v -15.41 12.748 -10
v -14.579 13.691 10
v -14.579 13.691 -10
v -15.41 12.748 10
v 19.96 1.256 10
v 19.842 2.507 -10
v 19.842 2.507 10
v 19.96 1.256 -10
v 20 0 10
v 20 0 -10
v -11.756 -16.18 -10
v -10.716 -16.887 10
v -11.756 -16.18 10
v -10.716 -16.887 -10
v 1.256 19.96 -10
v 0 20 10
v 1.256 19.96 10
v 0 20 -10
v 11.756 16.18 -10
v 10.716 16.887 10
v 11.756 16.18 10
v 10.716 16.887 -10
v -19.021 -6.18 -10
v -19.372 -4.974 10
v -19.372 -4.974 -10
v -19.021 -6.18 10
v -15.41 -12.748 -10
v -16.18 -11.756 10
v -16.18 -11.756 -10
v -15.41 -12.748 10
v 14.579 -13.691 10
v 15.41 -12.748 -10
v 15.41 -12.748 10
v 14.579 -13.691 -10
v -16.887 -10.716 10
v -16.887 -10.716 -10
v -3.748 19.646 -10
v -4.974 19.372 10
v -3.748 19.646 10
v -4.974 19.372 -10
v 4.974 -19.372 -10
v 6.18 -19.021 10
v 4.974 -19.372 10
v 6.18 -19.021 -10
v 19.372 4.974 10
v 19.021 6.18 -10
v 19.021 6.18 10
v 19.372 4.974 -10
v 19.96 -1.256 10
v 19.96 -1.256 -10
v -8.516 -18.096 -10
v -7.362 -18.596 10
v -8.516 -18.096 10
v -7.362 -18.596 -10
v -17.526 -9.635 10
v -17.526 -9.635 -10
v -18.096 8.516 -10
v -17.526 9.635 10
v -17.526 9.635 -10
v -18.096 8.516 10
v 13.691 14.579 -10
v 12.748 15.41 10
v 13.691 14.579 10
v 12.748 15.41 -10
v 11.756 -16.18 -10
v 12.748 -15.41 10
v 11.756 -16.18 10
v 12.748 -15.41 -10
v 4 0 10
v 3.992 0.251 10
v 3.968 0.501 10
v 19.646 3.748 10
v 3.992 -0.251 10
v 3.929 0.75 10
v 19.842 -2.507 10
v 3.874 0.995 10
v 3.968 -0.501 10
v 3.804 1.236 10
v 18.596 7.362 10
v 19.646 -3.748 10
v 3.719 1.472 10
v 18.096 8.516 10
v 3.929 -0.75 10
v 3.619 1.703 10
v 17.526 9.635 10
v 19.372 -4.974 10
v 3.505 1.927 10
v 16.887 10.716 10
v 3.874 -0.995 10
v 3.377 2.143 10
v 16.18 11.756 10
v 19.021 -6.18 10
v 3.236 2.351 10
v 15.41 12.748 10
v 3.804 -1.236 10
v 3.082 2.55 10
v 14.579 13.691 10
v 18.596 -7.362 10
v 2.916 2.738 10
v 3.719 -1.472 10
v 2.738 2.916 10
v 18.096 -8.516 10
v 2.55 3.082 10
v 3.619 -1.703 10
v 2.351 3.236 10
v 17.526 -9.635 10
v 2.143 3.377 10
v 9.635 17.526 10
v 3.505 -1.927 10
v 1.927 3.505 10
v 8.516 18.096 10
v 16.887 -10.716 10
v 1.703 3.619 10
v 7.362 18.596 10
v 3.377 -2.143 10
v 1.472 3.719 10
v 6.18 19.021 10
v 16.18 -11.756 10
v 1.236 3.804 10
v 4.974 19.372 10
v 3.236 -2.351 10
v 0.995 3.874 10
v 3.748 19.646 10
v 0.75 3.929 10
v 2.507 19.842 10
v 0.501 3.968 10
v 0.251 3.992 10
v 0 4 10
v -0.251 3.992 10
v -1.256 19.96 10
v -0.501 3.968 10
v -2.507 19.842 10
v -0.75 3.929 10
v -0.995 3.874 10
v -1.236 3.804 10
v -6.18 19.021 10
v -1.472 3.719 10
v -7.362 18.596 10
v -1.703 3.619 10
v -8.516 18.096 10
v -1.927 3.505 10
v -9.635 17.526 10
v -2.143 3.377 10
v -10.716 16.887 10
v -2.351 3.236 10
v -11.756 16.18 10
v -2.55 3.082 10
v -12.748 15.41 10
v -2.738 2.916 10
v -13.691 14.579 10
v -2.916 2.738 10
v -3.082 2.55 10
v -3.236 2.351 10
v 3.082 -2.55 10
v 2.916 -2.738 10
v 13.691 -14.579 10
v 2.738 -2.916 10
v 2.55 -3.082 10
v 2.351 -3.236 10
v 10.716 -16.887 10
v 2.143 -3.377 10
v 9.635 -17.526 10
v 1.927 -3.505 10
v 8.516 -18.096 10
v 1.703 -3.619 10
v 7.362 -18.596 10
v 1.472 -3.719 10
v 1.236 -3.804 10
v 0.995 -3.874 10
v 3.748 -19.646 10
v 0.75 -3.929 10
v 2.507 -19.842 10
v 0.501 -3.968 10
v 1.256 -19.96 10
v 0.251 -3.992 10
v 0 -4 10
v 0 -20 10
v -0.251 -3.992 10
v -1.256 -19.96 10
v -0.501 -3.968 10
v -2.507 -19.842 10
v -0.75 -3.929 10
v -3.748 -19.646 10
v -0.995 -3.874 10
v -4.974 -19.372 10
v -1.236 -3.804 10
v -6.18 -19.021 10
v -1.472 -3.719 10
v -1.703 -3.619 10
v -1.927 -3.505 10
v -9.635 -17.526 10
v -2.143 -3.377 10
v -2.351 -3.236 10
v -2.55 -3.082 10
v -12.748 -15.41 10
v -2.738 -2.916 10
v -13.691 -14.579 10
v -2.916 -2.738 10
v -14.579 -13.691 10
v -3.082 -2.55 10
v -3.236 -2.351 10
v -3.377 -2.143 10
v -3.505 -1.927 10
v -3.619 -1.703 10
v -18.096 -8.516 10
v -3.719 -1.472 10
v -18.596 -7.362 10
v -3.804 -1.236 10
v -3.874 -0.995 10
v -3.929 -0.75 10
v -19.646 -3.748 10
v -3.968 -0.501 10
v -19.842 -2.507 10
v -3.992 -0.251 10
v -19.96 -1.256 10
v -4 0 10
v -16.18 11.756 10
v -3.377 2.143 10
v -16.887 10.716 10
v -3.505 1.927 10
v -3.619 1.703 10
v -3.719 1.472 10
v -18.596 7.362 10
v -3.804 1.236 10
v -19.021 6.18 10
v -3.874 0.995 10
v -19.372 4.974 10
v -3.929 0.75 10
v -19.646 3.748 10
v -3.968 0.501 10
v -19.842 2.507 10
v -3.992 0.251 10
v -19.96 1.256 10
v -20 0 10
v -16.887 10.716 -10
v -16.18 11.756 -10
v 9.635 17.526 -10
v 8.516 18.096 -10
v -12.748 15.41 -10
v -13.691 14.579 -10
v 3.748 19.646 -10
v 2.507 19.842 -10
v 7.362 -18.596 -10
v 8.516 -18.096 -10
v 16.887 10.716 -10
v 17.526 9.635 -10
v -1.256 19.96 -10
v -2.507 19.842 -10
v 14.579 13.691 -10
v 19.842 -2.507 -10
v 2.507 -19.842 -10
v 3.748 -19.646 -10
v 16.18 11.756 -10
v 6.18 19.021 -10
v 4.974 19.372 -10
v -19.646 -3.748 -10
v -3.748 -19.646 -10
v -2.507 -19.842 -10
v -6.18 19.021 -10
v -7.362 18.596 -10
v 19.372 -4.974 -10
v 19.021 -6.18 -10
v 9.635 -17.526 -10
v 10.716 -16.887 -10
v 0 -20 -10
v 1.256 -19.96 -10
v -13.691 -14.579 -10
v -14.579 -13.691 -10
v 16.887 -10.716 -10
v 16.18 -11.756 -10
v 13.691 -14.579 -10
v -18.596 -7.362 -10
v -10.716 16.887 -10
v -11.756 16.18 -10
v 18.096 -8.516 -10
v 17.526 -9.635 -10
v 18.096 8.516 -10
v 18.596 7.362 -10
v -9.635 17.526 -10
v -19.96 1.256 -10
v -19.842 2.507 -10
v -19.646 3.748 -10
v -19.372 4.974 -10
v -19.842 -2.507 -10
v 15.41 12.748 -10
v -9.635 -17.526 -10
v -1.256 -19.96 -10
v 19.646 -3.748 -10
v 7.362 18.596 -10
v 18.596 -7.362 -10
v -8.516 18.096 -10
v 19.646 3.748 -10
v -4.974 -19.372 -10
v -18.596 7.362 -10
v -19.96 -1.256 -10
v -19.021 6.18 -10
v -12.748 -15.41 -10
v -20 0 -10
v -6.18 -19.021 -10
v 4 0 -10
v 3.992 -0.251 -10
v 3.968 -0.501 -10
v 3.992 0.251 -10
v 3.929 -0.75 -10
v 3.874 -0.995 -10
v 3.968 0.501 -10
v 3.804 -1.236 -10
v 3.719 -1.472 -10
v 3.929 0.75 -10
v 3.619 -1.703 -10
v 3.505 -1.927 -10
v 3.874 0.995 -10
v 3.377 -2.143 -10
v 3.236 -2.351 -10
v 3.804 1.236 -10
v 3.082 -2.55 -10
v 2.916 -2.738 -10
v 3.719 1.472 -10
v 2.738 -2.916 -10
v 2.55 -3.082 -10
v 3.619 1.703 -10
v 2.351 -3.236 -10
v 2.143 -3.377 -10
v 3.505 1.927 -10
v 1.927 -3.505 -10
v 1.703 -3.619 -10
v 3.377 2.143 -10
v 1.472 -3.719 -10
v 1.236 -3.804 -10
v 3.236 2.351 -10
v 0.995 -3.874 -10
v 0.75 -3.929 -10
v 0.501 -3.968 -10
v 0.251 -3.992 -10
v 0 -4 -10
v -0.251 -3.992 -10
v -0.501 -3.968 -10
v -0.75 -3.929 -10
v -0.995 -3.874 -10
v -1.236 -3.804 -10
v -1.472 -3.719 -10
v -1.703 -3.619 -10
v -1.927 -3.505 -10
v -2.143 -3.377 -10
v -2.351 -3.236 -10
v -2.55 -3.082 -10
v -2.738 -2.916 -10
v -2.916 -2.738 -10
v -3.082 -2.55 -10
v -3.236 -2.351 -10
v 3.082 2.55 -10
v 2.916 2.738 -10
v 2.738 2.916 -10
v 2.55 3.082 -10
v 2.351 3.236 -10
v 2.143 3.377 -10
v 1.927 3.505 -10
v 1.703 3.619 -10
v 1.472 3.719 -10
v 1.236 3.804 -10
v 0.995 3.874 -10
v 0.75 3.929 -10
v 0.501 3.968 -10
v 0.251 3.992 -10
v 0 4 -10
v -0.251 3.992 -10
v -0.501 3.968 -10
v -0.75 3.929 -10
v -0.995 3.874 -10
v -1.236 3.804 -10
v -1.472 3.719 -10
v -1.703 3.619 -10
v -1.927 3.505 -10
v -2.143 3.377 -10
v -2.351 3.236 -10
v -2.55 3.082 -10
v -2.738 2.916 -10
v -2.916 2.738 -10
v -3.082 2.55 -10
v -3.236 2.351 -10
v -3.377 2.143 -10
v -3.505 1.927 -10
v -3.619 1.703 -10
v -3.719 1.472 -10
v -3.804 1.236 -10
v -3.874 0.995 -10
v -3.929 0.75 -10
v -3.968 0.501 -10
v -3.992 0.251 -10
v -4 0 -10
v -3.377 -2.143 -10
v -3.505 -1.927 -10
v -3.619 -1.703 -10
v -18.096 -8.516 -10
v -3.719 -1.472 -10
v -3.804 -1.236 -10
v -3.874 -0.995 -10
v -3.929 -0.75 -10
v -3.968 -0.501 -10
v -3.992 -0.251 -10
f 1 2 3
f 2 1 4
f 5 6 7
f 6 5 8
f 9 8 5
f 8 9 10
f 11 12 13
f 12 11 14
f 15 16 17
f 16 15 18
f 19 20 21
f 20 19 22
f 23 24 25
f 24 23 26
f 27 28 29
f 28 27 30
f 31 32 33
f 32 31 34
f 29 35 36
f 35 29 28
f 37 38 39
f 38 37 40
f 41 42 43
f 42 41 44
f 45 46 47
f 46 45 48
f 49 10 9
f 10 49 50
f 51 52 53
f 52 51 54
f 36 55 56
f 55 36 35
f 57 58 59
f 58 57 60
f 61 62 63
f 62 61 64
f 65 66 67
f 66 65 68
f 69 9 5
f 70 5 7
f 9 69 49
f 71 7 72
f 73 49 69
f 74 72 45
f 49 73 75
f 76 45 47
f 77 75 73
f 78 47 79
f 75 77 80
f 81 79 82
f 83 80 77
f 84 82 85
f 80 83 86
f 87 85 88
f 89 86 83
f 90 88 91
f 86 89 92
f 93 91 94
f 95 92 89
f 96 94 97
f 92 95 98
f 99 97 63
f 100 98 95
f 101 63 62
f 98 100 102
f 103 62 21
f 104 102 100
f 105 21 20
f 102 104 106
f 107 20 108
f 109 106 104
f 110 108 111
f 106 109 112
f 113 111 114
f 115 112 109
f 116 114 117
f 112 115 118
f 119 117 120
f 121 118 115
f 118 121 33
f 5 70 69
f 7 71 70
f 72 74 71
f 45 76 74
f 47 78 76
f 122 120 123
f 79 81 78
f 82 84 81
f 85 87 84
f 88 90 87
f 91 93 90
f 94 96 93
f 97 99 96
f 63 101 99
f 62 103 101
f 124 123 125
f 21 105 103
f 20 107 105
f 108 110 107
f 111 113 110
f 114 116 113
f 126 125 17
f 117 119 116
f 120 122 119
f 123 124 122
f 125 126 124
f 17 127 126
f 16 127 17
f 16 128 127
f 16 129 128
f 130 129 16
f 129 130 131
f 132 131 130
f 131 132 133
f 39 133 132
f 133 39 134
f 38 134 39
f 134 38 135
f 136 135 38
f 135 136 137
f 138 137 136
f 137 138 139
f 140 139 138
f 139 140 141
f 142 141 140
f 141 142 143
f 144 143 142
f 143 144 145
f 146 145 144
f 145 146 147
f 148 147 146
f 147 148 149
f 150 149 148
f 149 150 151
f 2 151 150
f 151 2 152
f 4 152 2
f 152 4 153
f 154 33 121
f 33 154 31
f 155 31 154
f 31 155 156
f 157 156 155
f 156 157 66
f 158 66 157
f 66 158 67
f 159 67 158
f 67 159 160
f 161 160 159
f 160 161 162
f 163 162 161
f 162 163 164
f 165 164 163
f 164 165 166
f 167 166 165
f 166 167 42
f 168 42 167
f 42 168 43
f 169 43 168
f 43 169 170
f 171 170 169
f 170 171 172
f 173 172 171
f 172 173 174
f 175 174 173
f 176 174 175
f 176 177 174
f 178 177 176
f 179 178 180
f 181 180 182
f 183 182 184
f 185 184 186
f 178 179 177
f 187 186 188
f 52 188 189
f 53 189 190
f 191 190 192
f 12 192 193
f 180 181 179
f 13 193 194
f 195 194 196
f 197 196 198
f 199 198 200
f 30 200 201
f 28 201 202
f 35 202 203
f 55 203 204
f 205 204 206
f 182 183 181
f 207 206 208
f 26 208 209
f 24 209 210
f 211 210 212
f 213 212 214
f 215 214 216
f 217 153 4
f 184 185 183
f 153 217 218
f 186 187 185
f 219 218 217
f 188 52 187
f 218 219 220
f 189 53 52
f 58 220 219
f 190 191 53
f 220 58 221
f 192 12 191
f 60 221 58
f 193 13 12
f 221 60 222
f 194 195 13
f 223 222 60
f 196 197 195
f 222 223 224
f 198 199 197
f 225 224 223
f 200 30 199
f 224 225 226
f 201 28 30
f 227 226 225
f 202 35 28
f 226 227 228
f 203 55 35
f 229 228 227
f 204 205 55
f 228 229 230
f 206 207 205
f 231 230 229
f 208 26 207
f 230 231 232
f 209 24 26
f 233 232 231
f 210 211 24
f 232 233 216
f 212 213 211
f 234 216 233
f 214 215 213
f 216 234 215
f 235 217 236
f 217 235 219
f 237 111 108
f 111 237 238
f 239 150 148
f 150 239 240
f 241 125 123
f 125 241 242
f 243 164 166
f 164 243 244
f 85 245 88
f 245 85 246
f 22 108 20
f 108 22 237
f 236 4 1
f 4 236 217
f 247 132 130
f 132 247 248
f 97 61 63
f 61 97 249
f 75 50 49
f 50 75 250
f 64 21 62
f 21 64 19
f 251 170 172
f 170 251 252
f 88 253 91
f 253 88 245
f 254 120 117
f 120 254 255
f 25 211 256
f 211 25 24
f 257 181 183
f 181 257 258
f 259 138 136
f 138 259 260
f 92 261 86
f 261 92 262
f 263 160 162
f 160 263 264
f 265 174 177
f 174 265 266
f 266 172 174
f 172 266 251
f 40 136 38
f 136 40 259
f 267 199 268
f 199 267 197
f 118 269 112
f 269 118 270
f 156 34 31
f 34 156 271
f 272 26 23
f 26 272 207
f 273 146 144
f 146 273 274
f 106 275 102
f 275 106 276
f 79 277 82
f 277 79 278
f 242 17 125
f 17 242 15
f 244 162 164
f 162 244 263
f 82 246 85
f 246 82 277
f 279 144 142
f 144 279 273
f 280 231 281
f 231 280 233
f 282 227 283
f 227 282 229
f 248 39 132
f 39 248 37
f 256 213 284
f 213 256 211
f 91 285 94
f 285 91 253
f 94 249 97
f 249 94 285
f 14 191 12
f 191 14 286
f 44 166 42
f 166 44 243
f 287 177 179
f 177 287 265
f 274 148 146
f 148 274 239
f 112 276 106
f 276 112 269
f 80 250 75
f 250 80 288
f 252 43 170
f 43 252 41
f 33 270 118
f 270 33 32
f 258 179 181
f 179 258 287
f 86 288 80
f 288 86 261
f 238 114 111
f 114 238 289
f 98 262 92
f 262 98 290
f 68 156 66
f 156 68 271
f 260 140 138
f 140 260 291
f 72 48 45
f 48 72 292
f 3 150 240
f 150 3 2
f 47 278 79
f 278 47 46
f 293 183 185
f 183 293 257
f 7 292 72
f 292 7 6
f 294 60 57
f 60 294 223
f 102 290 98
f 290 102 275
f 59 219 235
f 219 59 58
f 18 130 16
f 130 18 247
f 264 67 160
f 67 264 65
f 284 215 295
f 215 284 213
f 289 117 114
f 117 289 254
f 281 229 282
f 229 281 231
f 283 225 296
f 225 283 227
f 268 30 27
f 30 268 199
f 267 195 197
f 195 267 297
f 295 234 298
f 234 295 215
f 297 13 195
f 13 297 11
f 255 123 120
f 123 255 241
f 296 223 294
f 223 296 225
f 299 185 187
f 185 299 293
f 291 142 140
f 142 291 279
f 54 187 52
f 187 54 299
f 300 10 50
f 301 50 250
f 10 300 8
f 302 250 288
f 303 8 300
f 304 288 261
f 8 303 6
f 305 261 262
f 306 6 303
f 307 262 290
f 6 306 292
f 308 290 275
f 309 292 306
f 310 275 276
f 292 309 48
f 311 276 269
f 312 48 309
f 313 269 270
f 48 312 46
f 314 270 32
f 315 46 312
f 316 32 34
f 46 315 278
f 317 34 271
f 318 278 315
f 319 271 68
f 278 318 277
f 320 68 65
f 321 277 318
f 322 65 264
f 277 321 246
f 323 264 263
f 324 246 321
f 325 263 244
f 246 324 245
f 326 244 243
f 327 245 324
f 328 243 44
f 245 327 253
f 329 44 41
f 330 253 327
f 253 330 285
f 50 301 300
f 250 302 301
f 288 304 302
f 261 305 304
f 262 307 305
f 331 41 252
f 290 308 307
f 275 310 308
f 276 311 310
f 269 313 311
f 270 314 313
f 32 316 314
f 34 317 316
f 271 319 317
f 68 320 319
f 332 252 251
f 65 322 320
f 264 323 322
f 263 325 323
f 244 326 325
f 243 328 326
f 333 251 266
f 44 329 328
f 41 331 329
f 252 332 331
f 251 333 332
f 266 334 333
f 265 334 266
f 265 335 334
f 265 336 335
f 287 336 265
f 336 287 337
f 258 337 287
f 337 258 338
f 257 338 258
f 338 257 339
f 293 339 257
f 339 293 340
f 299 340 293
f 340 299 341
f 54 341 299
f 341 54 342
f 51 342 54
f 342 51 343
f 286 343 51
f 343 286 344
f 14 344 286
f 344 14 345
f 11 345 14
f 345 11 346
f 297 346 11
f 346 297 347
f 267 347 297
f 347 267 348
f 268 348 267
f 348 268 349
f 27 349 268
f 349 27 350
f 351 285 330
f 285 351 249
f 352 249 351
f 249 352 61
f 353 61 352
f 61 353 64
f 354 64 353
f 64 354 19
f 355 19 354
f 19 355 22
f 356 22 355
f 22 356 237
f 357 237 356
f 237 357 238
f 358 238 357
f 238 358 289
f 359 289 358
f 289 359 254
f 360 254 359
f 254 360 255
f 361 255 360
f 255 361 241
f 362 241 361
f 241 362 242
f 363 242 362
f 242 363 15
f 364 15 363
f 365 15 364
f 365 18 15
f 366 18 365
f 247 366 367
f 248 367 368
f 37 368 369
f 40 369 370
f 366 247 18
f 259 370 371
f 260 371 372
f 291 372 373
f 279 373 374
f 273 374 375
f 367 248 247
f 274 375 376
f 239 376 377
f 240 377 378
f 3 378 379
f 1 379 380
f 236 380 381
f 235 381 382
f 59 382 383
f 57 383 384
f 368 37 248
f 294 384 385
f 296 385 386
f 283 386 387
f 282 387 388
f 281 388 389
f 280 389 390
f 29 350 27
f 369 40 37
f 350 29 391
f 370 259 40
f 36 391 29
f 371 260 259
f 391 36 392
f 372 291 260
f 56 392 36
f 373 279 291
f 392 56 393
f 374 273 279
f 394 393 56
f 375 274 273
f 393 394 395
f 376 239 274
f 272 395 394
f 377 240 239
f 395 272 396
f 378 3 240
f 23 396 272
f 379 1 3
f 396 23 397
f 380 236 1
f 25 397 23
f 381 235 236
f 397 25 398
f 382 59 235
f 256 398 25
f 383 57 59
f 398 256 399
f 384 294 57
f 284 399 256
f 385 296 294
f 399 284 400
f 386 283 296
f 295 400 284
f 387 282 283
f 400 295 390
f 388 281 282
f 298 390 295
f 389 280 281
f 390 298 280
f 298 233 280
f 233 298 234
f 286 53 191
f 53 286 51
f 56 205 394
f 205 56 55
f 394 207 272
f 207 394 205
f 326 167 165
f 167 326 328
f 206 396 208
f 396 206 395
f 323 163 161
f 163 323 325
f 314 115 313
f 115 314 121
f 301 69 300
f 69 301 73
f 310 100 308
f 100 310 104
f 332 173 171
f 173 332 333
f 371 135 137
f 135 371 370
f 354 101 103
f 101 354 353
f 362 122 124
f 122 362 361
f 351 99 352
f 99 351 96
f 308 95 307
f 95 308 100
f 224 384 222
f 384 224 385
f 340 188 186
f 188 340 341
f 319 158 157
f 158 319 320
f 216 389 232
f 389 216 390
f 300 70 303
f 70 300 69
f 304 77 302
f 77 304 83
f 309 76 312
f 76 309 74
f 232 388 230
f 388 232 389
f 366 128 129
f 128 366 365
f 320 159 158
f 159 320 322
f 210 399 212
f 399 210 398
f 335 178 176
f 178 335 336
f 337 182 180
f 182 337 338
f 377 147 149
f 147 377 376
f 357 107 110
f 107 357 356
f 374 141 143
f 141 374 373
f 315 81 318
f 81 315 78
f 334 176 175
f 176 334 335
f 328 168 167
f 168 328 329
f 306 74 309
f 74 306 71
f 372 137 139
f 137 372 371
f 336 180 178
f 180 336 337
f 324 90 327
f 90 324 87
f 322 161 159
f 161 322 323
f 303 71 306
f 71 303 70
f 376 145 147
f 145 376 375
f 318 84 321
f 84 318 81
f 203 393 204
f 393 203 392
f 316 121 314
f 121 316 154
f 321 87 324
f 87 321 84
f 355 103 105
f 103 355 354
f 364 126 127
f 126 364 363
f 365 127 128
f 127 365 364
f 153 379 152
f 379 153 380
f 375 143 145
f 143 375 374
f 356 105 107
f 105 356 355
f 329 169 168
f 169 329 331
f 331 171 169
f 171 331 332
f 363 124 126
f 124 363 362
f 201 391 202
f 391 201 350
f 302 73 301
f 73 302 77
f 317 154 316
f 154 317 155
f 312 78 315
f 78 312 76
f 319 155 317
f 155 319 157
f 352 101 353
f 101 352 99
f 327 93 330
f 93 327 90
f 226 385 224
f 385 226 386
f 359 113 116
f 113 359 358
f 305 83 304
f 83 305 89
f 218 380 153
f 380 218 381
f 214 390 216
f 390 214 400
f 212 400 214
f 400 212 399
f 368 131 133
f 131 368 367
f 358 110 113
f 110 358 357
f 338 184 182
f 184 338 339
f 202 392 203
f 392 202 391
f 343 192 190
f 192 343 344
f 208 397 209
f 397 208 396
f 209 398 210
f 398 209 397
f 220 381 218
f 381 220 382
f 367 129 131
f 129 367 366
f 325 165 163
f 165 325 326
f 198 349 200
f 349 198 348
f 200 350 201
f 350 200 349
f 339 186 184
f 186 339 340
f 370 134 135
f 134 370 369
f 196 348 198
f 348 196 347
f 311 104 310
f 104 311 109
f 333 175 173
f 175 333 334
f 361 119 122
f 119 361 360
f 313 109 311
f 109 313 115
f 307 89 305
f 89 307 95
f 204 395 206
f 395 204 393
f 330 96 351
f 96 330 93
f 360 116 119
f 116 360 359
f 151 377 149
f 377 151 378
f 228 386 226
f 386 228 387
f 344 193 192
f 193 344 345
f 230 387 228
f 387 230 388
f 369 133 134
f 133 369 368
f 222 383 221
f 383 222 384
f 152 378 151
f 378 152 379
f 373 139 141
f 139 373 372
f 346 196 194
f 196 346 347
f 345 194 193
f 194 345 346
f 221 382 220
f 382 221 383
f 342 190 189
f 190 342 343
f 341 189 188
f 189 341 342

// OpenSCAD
// Central Cylinder Parameters
cylinder_diameter = 40; // Diameter of the central cylinder
cylinder_height = 20;   // Height of the central cylinder
hole_diameter = 8;      // Adjusted diameter of the central hole to match the original model
$fn = 100;              // Increased resolution for smoother surface finish

// Central Cylinder Module
module central_cylinder() {
    difference() {
        // Main body of the cylinder
        cylinder(d = cylinder_diameter, h = cylinder_height, center = true);
        // Central hole
        cylinder(d = hole_diameter, h = cylinder_height + 2, center = true);
    }
}

// Render the central cylinder
central_cylinder();
